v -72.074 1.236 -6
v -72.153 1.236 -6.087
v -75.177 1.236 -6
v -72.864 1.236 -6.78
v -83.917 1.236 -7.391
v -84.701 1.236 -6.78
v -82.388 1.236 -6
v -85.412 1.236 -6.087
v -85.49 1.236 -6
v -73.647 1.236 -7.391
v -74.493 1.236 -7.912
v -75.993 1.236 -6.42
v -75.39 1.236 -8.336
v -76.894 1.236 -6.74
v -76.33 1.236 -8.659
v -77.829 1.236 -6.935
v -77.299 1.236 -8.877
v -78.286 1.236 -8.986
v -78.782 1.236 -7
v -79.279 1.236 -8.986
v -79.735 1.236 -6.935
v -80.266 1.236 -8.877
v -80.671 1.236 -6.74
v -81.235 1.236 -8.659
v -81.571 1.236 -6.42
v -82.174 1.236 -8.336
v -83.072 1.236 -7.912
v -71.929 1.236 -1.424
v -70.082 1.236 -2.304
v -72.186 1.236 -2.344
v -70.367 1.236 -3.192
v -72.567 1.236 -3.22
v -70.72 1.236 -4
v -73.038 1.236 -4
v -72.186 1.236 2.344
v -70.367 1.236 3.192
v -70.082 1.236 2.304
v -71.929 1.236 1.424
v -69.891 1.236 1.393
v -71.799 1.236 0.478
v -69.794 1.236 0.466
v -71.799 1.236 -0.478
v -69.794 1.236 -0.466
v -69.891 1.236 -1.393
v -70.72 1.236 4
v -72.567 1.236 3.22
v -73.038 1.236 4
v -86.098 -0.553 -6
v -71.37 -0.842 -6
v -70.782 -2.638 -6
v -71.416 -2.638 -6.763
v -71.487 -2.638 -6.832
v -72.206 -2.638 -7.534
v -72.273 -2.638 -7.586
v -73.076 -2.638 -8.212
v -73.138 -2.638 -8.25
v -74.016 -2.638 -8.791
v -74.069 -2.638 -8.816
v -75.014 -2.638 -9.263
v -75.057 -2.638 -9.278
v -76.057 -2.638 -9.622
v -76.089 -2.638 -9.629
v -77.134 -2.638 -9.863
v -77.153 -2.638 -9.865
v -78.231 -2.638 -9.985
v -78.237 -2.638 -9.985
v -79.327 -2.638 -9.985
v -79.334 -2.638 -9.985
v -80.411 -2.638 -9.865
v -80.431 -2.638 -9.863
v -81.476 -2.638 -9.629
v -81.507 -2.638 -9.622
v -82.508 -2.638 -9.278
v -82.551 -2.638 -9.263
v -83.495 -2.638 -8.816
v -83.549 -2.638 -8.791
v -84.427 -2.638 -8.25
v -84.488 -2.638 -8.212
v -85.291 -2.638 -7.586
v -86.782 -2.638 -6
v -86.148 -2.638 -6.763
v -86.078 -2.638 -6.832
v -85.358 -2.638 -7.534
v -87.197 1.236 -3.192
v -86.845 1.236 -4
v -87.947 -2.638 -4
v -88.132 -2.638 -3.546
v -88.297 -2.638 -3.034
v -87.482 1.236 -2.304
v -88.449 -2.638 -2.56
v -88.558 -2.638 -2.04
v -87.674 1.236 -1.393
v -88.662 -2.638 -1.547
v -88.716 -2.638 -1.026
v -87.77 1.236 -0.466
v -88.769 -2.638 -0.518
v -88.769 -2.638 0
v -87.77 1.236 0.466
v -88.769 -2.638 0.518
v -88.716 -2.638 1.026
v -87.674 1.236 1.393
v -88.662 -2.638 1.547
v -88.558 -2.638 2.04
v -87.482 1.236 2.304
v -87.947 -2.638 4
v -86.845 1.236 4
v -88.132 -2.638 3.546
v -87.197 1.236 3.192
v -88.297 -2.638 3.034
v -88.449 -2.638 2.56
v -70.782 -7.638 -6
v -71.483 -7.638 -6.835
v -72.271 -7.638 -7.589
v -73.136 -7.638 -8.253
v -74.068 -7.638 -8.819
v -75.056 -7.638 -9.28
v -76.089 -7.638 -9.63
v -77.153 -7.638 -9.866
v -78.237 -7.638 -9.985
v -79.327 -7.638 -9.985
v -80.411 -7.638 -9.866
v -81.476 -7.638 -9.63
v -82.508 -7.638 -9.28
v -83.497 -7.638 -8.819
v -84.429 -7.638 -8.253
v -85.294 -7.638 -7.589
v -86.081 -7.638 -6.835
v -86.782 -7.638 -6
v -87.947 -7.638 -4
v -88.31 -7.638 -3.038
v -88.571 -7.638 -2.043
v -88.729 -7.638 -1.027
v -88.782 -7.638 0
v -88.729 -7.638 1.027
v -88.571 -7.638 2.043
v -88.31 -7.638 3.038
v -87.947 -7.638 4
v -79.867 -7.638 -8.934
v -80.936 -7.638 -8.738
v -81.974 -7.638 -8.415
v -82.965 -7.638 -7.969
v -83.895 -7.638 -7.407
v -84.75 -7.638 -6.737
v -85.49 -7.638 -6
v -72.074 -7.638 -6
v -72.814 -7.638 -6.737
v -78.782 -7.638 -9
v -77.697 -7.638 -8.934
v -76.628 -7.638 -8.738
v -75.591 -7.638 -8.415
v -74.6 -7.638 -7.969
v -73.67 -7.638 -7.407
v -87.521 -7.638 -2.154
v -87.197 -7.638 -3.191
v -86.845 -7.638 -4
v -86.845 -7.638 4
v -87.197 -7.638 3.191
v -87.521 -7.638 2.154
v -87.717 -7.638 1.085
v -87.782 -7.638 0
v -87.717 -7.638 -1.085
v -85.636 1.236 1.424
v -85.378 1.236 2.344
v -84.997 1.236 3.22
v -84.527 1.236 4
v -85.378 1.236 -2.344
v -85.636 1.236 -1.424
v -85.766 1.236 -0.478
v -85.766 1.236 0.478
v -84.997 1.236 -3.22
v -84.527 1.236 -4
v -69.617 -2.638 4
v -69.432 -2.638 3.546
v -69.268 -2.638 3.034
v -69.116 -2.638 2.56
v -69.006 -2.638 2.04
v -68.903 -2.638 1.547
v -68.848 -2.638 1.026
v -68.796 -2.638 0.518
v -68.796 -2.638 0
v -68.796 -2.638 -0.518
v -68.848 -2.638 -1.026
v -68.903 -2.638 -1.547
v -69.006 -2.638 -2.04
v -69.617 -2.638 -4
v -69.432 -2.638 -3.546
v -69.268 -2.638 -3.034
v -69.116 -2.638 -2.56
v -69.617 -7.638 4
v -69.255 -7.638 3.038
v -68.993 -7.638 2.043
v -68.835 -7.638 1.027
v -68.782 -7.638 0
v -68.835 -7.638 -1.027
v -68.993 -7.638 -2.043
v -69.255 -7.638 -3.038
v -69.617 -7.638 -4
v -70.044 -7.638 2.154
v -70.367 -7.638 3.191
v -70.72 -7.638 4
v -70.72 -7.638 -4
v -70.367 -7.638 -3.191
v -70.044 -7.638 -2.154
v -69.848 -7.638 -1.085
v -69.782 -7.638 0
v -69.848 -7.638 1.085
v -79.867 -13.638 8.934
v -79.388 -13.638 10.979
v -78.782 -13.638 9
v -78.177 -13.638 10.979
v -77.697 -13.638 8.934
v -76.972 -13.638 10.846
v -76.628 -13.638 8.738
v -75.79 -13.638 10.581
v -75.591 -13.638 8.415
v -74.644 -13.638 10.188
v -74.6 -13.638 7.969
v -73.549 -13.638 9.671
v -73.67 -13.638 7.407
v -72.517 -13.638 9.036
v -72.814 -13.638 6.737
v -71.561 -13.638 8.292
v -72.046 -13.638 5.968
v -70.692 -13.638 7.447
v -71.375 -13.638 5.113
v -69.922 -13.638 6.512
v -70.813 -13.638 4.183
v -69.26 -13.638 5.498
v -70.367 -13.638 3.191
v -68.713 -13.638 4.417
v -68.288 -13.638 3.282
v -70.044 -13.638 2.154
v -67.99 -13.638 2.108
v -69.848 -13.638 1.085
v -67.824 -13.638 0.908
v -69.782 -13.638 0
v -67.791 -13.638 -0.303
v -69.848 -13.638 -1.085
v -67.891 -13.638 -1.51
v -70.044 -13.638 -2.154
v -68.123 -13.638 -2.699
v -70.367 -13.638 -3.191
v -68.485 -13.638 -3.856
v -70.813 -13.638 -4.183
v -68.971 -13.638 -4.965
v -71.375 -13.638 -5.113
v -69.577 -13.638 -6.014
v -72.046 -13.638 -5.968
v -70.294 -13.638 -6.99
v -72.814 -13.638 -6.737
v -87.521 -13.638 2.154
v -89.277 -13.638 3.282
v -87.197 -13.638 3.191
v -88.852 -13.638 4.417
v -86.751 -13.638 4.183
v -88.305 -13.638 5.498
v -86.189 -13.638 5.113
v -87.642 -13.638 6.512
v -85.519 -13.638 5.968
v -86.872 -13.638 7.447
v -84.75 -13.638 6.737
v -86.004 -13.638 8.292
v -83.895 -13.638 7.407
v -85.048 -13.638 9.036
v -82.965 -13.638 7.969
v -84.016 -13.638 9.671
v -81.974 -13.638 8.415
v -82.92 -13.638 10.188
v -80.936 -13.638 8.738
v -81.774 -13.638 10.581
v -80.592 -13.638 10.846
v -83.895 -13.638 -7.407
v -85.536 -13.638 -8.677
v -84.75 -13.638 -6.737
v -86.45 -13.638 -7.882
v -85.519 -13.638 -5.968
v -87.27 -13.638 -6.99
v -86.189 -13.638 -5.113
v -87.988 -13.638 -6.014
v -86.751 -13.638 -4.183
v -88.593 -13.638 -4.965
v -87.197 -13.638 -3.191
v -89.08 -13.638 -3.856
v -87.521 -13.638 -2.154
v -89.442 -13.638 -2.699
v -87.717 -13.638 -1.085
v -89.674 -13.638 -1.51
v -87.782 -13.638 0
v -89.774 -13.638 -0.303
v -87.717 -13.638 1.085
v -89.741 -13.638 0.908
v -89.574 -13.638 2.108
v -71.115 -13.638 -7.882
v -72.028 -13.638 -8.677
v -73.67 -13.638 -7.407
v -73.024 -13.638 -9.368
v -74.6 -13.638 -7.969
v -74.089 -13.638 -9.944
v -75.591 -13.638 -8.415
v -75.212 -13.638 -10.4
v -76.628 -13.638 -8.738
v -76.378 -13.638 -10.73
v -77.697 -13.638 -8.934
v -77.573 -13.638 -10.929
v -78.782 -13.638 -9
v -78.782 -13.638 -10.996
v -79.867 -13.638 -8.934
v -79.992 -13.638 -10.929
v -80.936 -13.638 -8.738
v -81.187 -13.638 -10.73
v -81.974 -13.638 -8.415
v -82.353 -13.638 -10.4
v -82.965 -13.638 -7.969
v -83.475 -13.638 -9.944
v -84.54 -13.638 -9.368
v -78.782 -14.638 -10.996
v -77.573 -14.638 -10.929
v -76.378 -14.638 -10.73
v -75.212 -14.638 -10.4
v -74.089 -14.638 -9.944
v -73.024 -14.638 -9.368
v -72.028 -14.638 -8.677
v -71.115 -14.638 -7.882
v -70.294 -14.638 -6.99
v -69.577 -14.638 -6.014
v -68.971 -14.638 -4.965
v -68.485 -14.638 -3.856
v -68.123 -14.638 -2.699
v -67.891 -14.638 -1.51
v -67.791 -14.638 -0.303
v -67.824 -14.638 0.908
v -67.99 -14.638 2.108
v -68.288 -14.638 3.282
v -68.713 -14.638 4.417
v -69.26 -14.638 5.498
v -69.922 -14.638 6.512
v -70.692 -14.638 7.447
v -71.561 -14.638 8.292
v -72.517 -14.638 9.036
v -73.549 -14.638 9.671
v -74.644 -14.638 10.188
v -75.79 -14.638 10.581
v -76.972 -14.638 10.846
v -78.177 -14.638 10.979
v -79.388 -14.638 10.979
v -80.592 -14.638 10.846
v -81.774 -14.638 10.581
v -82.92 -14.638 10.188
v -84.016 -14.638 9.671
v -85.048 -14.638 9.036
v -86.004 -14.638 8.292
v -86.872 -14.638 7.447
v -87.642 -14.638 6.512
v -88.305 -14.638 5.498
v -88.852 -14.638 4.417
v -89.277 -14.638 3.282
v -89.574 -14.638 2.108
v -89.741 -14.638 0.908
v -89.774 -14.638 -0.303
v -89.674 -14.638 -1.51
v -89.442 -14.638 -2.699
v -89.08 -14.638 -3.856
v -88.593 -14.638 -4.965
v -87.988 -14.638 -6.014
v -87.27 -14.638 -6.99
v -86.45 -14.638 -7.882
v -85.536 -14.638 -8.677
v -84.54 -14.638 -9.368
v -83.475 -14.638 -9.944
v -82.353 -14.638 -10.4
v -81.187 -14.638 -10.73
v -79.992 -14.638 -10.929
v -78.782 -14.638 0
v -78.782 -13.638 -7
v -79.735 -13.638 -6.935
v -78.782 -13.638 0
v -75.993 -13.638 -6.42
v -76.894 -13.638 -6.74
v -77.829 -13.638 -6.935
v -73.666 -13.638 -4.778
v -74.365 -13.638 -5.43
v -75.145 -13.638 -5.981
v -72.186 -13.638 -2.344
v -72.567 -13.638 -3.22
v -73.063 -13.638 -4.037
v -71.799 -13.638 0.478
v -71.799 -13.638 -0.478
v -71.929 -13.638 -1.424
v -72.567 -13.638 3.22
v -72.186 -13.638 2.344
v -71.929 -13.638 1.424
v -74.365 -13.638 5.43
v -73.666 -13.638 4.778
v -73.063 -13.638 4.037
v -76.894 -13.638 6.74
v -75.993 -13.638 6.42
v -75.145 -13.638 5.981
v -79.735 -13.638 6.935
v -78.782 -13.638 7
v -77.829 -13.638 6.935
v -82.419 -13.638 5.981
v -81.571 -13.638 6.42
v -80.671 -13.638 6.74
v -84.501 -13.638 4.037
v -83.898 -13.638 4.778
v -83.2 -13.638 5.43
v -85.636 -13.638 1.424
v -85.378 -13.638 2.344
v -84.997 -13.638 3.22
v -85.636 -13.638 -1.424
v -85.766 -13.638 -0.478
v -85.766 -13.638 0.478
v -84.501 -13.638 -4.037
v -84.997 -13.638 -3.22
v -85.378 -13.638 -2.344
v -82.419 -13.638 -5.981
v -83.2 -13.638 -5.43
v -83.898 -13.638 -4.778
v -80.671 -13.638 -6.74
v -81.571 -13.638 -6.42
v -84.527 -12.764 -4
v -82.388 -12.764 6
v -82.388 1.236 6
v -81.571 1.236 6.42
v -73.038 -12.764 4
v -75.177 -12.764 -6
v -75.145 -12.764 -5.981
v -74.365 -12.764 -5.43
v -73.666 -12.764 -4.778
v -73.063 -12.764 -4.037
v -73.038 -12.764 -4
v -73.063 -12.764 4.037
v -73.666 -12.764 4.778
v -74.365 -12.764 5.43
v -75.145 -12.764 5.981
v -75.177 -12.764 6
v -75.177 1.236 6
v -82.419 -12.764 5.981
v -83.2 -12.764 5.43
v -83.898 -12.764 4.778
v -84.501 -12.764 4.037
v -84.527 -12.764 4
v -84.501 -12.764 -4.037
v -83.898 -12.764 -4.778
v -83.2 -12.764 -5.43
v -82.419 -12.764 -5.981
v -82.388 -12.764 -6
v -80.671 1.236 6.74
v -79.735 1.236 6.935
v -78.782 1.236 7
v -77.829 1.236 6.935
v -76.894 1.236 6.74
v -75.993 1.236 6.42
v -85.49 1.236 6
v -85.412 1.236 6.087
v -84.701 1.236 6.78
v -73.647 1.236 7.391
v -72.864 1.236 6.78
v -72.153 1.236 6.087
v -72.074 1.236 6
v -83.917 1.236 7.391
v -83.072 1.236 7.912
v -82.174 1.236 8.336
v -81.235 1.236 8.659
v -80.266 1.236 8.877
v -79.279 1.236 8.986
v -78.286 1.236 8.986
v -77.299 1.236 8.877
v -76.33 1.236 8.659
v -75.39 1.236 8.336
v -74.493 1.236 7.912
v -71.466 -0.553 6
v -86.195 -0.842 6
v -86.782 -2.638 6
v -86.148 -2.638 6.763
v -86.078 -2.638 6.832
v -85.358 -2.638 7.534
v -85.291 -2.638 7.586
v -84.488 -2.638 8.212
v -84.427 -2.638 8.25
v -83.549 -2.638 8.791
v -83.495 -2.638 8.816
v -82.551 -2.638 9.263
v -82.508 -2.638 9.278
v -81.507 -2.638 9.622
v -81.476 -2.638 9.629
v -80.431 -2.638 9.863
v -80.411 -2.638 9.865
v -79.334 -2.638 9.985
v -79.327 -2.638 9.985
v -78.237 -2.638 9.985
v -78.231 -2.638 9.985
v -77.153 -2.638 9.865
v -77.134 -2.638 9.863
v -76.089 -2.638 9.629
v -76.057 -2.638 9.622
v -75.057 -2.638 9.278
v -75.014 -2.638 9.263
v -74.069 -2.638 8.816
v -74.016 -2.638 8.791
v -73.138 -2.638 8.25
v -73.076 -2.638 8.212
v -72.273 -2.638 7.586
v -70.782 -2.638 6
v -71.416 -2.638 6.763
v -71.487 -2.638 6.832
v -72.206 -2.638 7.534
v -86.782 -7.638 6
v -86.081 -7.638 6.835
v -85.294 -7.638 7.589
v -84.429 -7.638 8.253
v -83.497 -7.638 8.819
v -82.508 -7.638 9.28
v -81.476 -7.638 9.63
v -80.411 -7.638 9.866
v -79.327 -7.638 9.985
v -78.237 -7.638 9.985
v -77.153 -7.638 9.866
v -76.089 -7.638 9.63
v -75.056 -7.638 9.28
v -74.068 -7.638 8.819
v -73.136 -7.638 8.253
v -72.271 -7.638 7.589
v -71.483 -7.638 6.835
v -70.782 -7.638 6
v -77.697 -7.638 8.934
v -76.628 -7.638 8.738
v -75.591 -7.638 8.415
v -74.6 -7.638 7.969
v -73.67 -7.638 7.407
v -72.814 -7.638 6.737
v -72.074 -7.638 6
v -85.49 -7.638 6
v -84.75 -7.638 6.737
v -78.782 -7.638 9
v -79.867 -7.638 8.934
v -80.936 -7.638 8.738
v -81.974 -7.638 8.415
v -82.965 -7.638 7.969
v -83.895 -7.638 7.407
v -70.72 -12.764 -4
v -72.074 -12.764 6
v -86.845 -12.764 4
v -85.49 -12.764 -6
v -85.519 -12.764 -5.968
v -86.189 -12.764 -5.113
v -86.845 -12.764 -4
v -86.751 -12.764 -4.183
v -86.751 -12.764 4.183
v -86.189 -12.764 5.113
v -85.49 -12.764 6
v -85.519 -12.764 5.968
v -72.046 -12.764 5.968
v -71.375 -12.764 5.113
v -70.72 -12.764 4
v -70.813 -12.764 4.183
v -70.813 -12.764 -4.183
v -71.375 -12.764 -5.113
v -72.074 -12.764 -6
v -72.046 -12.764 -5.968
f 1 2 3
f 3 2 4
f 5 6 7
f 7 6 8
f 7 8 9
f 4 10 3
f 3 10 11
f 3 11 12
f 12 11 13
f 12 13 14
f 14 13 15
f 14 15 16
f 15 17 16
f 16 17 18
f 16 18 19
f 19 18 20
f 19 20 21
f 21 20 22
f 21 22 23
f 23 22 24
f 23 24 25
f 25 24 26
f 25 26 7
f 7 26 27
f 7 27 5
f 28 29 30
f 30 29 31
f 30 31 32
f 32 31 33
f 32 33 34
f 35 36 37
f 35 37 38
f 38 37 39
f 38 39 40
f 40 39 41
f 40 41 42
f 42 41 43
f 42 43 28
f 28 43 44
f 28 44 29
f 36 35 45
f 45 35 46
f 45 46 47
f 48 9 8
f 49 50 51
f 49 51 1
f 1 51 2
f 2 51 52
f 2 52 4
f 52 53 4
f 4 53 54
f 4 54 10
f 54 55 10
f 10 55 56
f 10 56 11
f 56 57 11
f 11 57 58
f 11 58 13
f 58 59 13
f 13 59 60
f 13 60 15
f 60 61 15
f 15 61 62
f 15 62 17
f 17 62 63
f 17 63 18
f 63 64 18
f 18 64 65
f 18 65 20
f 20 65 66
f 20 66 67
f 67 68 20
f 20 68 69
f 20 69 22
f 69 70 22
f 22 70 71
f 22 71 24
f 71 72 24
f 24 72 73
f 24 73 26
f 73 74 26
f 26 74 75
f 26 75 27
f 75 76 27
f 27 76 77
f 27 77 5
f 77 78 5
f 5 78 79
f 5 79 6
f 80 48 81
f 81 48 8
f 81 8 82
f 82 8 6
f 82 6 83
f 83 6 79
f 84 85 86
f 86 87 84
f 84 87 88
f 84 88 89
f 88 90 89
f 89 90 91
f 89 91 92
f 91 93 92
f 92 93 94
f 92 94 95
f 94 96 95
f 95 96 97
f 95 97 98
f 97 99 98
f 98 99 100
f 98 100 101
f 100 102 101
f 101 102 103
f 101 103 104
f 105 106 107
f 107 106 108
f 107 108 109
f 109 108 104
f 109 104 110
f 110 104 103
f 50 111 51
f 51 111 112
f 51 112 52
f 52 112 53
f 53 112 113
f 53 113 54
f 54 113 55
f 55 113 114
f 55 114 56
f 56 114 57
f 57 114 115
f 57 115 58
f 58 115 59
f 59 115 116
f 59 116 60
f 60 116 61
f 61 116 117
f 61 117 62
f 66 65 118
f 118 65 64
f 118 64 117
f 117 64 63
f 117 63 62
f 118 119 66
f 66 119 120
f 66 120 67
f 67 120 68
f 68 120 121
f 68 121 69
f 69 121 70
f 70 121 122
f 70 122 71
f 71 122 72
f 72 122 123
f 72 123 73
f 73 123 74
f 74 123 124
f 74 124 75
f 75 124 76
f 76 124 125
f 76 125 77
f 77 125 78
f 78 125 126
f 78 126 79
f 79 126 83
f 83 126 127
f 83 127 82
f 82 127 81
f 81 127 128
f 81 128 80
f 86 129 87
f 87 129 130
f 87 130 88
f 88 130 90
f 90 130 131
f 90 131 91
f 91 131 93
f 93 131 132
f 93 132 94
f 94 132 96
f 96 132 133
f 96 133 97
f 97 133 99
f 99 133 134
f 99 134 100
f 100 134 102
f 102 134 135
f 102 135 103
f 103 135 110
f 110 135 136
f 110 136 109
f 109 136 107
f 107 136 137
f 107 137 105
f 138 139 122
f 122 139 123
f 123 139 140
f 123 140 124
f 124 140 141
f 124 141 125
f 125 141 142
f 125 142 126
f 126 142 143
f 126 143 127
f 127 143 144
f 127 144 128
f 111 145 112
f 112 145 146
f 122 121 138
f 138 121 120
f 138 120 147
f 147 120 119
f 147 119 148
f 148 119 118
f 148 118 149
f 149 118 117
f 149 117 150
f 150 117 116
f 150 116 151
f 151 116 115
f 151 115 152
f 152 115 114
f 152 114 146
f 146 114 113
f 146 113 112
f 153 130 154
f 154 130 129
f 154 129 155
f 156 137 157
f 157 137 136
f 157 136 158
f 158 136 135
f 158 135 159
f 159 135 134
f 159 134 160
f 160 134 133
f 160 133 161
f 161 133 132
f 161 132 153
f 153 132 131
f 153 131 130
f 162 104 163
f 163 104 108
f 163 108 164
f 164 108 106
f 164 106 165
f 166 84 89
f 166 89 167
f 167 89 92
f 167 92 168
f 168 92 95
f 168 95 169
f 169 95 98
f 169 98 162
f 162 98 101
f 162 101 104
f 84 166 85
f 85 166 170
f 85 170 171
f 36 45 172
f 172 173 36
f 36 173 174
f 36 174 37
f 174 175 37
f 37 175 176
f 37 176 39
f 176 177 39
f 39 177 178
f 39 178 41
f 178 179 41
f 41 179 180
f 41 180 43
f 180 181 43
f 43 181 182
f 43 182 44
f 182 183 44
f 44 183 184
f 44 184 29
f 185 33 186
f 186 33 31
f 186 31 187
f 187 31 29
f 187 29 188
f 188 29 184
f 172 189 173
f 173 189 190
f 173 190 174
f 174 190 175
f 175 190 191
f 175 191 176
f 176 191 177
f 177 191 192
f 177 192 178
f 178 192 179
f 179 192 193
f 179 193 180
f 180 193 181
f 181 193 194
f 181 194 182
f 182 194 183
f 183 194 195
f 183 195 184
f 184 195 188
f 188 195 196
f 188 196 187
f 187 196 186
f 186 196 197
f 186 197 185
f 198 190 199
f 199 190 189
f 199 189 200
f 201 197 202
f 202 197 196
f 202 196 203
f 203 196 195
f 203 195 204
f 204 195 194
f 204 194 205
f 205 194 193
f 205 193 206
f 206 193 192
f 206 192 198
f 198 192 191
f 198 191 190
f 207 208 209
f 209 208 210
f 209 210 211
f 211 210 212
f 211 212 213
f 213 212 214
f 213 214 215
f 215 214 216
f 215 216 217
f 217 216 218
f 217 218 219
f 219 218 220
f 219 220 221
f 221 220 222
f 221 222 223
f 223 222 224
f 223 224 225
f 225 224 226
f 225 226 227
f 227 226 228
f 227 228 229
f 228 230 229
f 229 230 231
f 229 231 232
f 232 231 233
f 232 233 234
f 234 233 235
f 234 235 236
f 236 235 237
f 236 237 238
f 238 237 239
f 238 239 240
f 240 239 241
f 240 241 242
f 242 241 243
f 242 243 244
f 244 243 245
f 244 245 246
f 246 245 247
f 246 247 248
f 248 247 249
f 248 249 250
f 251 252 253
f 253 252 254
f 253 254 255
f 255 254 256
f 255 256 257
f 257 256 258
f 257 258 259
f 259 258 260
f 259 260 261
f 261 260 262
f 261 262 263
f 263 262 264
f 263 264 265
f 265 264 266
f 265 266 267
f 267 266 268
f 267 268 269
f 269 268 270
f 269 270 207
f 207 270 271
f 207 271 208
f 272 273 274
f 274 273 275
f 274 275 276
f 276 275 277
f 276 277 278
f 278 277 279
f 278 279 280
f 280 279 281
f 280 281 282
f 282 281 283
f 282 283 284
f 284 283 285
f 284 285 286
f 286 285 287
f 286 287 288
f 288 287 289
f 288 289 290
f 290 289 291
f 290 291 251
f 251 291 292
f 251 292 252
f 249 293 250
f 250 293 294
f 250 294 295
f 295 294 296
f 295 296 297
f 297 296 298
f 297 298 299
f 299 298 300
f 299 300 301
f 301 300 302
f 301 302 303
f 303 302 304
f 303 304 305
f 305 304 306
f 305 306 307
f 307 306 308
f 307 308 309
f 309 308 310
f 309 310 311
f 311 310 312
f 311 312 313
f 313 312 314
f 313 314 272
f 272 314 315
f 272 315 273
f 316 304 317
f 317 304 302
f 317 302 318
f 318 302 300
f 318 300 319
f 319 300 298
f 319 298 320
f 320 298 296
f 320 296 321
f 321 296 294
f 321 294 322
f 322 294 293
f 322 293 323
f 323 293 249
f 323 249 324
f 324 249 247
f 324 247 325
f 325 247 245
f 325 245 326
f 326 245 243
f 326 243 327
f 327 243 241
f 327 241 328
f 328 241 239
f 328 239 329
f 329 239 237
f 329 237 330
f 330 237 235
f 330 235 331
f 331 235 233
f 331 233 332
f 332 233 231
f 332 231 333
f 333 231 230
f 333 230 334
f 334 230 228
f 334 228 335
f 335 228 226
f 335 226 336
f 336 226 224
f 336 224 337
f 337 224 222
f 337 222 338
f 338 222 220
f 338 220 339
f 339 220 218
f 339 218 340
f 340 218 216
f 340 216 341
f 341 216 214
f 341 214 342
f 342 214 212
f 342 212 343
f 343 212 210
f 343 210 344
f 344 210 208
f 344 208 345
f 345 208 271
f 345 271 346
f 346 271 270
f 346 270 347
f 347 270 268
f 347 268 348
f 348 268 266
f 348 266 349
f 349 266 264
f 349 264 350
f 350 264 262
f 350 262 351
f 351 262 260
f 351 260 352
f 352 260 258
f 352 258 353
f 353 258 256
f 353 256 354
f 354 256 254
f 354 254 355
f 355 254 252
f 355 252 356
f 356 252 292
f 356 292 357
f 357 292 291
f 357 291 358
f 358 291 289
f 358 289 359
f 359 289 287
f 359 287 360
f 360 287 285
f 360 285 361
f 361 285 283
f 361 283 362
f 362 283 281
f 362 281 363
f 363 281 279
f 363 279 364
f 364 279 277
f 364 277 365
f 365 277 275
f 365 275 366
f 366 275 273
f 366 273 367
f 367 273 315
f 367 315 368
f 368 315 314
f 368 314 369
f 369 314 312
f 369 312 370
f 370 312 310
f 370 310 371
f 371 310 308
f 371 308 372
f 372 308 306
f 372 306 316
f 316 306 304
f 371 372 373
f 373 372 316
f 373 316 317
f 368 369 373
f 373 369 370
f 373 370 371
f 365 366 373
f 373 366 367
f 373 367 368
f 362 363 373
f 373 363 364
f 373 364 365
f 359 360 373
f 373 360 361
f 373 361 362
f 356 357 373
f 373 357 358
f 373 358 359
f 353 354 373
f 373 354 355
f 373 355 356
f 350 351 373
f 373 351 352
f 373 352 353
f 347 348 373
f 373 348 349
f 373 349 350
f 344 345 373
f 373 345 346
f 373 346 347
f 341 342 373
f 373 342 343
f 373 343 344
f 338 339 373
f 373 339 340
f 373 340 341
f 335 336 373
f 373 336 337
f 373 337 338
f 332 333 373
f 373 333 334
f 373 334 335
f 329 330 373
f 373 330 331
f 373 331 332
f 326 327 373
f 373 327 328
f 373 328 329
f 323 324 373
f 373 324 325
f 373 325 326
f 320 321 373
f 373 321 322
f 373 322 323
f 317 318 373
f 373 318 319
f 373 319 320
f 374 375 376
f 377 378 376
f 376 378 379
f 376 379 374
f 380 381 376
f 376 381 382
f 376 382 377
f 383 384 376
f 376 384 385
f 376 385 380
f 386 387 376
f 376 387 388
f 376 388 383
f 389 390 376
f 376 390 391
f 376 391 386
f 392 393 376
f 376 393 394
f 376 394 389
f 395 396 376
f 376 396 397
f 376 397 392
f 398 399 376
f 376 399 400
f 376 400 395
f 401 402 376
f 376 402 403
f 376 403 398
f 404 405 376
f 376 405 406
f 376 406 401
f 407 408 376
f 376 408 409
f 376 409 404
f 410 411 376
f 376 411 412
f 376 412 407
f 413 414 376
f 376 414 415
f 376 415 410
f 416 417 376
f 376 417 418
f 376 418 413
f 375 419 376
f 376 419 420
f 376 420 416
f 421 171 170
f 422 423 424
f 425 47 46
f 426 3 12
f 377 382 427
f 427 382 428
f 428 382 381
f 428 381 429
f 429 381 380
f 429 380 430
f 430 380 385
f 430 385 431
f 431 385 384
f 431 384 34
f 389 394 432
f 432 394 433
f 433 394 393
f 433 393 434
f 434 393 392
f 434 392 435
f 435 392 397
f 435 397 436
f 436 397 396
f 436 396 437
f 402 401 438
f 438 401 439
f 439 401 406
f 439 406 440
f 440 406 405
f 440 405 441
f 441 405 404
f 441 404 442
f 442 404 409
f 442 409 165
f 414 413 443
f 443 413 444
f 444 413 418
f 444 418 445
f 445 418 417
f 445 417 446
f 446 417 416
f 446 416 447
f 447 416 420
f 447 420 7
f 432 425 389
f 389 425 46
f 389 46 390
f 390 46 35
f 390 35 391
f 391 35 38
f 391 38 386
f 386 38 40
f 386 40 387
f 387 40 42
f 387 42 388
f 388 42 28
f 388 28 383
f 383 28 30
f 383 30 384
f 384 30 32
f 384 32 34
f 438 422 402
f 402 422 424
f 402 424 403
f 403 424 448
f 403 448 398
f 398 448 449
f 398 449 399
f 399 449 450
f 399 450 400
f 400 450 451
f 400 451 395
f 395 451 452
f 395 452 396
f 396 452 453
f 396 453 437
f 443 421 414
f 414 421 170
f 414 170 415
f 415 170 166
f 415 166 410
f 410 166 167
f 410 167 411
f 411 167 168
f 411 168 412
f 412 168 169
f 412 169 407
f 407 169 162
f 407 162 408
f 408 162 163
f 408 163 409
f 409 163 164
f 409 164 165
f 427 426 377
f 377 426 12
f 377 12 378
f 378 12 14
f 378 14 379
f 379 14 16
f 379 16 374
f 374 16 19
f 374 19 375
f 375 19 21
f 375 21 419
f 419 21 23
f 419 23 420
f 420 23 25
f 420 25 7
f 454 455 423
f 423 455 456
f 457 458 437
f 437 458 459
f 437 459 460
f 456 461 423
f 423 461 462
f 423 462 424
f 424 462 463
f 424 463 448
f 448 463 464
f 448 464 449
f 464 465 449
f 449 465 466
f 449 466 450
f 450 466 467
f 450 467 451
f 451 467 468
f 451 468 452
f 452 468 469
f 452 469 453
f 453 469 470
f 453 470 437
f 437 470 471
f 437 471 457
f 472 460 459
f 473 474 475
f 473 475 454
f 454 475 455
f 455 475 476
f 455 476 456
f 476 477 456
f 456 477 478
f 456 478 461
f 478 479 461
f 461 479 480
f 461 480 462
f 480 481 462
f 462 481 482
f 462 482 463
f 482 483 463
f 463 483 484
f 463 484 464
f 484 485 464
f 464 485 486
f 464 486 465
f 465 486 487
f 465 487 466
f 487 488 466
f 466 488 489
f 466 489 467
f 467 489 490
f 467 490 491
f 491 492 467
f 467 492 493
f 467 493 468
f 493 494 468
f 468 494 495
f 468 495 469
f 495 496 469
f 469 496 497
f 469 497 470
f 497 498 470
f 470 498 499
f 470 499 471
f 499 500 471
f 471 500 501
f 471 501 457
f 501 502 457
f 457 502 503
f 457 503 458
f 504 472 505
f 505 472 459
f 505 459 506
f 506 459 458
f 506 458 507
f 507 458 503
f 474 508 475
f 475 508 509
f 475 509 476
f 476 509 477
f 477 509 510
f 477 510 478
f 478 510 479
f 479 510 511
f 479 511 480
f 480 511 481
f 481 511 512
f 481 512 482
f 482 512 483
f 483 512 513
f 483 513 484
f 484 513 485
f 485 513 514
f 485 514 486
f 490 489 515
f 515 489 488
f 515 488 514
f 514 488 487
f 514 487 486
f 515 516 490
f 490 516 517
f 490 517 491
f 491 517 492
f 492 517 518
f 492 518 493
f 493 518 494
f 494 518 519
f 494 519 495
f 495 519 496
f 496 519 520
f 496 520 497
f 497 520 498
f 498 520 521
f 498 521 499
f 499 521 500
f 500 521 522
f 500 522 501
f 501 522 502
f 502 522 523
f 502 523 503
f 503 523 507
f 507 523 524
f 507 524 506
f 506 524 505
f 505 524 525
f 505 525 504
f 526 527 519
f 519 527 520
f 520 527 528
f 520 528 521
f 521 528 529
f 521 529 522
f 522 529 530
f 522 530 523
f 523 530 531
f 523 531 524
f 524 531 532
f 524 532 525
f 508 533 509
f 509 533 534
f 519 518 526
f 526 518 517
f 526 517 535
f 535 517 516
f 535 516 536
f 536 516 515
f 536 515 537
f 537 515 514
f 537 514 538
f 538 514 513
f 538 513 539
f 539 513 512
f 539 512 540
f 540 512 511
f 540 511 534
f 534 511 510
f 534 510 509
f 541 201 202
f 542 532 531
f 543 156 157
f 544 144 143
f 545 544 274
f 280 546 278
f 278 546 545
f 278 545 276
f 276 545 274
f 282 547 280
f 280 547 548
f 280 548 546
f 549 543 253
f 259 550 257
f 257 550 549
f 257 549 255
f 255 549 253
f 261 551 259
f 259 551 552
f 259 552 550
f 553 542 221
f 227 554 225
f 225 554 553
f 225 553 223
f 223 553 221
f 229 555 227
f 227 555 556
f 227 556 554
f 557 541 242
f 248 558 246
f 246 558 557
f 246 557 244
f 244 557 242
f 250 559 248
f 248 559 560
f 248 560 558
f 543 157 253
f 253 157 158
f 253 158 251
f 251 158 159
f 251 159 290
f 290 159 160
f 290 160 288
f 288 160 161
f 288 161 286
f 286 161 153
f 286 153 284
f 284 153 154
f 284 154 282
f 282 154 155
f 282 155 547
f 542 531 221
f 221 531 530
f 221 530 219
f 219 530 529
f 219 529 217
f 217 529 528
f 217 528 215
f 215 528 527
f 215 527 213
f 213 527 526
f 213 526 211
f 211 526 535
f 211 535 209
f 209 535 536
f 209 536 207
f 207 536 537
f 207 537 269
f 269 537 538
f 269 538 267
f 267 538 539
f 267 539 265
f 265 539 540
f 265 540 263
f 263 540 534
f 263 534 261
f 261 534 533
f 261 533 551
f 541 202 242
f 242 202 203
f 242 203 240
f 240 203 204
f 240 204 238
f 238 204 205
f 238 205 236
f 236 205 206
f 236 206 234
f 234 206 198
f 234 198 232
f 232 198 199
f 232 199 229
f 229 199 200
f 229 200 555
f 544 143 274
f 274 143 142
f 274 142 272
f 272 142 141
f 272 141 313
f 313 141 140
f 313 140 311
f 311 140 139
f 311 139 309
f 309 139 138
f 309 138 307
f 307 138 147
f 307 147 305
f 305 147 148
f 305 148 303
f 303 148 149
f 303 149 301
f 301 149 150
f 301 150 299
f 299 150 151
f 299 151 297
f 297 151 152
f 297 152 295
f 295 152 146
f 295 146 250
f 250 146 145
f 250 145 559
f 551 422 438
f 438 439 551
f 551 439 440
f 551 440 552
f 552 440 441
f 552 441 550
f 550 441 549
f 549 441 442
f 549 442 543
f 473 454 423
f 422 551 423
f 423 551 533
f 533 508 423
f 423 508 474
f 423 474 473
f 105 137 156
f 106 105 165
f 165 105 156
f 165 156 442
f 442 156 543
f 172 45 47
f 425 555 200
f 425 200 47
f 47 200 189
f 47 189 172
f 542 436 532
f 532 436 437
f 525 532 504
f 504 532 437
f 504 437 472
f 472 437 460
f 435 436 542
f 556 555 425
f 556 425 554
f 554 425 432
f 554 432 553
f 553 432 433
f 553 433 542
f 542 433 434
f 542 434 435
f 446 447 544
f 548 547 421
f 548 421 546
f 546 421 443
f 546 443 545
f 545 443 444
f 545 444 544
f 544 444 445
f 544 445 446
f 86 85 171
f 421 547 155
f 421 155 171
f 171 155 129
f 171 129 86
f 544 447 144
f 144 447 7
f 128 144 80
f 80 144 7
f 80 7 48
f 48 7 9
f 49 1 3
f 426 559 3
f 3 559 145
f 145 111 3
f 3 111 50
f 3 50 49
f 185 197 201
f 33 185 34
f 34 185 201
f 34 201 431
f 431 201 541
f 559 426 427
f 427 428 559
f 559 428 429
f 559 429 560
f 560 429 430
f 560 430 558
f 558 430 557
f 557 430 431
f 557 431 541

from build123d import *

# Parameters (mm, degrees)
CROQUIS2_W            = 26
CROQUIS2_H            = 2
CORTAR_EXTRUIR1_DEPTH = 14


with BuildPart() as part:
    # Croquis1 → Revolución1 (revolve)
    with BuildSketch(Plane.XY):
        Polygon((-89.778094977, -14.637996222), (-78.782252338, -14.637996222), (-78.782252338, -13.637996222), (-85.782252338, -13.637996222), (-85.782252338, 1.235955759), (-87.782252338, 1.235955759), (-88.782252338, -2.637996222), (-88.782252338, -7.637996222), (-87.782252338, -7.637996222), (-87.782252338, -13.637996222), (-89.778094977, -13.637996222), align=None)
    revolve(axis=Axis((-78.782252338, -14.637996222, 0), (0, 1, 0)))

    # Croquis2 → Cortar-Extruir1 (cut)
    with BuildSketch(Plane(origin=(0, 1.235955759, 0), x_dir=(1, 0, 0), z_dir=(0, 1, 0))):
        with Locations((-78.782252338, -5)):
            Rectangle(CROQUIS2_W, CROQUIS2_H)
        with Locations((-78.782252338, 5)):
            Rectangle(CROQUIS2_W, CROQUIS2_H)
    extrude(amount=-CORTAR_EXTRUIR1_DEPTH, mode=Mode.SUBTRACT)


solid = part.part
